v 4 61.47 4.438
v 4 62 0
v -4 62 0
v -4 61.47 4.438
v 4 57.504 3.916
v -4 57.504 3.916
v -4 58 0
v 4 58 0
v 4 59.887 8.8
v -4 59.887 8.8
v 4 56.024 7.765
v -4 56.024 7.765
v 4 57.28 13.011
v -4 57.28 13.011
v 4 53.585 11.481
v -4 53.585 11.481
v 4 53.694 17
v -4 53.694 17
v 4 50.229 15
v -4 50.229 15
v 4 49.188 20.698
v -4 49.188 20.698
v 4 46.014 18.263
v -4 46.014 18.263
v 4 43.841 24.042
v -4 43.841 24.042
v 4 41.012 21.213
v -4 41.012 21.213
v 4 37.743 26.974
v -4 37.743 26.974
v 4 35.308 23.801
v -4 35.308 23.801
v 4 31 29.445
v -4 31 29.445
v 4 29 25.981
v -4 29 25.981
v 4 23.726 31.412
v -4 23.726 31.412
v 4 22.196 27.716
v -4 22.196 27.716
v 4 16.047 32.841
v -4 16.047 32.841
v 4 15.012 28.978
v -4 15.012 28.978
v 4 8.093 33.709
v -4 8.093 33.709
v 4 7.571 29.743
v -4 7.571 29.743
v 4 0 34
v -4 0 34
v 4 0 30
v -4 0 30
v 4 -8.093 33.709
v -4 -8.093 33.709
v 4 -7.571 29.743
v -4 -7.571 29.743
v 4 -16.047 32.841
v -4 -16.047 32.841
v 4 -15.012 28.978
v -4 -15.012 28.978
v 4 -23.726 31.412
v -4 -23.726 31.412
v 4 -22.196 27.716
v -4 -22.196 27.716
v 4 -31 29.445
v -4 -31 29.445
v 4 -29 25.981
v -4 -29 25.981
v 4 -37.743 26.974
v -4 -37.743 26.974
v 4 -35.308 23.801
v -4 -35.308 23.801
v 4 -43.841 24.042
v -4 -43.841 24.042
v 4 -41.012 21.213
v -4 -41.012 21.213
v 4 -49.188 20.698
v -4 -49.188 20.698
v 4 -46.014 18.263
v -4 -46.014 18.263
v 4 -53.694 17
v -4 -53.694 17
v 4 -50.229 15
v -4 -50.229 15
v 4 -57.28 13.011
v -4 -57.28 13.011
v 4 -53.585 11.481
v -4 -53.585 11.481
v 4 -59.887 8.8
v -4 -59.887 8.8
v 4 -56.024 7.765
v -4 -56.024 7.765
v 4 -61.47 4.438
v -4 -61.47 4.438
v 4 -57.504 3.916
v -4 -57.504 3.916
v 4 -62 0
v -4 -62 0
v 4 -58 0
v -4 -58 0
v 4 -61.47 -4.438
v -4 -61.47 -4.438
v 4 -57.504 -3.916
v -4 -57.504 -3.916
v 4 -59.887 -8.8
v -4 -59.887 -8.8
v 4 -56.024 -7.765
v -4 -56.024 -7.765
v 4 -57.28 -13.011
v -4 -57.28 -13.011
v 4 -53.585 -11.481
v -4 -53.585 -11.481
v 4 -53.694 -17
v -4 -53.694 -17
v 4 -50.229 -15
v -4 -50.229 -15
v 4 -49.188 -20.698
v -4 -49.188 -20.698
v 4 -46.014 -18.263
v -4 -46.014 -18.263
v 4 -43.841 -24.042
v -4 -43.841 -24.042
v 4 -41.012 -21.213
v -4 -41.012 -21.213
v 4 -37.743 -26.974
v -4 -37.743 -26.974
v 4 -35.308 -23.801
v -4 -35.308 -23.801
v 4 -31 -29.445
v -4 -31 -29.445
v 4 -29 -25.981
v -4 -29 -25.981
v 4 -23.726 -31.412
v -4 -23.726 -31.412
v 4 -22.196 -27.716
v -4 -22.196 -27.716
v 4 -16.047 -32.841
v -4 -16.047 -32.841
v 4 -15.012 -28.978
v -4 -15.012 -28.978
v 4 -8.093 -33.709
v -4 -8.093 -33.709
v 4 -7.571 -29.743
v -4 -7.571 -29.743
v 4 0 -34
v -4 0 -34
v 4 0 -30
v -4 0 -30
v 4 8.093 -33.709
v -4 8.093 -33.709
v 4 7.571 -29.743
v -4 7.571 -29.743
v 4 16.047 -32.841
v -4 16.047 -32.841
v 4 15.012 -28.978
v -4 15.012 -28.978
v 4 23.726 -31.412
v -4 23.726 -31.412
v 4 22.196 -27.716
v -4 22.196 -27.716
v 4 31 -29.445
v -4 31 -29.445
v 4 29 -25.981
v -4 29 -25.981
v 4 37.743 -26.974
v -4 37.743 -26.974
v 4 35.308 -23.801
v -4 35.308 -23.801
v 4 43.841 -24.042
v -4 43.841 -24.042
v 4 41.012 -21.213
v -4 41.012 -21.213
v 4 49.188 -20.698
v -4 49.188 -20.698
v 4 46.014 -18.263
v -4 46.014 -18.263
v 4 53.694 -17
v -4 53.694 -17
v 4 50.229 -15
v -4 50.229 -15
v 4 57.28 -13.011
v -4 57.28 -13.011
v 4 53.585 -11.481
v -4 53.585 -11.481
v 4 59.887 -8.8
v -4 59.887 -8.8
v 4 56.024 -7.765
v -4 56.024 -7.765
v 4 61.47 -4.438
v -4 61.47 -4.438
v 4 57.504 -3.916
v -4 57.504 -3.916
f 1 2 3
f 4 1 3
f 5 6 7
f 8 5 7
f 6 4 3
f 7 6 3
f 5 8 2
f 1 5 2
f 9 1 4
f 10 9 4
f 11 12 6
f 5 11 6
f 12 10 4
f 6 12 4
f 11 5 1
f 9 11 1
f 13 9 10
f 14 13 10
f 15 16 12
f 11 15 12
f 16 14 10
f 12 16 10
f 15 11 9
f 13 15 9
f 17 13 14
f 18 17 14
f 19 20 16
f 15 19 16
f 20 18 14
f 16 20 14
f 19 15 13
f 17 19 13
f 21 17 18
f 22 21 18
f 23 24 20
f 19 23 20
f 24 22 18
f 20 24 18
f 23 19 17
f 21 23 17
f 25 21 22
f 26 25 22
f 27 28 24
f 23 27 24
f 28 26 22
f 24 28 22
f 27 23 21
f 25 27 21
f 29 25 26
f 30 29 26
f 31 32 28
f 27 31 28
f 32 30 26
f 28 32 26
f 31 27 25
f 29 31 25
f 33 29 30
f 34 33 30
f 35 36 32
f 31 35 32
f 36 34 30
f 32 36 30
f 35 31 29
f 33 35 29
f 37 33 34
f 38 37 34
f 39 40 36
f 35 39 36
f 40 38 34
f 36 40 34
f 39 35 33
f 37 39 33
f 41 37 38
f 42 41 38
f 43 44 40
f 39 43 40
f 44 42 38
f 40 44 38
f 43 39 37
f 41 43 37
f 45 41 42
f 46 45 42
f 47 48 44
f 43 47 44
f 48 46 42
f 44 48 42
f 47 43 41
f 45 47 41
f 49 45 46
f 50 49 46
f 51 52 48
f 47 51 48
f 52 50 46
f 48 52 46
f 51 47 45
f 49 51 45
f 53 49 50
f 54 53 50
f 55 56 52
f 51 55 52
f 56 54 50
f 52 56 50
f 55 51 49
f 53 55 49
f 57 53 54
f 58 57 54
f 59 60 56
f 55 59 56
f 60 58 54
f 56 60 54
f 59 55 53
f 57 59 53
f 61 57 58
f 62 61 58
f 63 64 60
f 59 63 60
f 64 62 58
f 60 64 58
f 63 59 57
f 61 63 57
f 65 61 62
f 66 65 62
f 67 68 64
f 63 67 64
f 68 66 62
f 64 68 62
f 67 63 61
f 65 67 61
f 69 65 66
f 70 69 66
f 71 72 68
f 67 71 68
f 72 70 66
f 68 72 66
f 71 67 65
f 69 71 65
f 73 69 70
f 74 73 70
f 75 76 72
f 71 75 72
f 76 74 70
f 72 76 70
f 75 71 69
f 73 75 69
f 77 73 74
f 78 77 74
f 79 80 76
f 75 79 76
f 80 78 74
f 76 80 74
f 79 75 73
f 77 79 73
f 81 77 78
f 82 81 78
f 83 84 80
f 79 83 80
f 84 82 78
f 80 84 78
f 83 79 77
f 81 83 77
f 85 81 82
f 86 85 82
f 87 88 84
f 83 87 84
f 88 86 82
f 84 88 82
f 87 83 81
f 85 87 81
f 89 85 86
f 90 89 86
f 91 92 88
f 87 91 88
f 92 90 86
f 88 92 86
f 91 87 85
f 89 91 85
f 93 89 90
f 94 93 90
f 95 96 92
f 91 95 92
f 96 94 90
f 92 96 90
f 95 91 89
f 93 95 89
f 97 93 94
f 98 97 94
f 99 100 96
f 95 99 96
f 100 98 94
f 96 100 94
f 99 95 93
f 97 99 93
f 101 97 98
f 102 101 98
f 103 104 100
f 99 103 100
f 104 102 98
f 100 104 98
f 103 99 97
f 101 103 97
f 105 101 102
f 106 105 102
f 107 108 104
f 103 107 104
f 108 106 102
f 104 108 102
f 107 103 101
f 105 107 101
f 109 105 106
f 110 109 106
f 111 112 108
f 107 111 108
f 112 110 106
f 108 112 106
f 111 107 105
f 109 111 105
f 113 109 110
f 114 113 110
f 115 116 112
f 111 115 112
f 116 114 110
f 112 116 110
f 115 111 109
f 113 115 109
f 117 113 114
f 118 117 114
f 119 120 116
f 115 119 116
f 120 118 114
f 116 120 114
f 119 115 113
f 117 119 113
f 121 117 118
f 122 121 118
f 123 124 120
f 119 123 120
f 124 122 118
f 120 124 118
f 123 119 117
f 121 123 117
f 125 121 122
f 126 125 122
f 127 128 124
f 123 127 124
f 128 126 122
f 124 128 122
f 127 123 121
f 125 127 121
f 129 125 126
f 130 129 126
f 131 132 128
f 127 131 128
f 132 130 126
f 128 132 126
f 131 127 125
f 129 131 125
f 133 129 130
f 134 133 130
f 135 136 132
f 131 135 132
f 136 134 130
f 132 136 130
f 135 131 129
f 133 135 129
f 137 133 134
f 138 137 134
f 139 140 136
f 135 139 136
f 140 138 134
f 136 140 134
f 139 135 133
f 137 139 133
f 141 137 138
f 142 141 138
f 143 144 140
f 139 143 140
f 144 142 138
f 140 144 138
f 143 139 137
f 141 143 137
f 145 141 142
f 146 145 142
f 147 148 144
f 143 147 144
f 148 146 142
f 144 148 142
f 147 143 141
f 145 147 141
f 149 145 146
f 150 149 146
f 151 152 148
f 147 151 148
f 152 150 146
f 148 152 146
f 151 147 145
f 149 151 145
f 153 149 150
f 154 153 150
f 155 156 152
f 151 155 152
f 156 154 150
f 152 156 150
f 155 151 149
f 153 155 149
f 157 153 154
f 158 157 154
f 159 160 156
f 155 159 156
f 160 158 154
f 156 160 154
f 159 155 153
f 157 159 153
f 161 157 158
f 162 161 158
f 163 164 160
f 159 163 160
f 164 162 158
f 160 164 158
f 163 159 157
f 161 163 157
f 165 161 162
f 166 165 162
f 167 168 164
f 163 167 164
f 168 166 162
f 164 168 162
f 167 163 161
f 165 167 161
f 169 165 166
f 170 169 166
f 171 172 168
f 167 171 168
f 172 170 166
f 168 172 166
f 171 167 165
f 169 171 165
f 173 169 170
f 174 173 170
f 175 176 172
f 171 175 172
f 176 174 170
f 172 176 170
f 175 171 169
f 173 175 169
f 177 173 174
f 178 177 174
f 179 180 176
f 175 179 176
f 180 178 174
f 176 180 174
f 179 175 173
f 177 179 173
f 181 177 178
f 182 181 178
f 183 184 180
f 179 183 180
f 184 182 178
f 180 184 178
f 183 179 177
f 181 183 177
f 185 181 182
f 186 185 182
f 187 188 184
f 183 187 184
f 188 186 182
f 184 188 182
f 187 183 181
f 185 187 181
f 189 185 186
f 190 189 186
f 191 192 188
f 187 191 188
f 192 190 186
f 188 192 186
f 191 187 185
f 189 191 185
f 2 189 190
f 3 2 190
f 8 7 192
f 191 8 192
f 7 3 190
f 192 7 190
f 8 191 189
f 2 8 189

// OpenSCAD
polyhedron(points=[[-4.0, 62.0, 0.0], [-4.0, 61.469581, 4.437891], [-4.0, 59.887401, 8.799848], [-4.0, 57.280531, 13.011237], [-4.0, 53.693575, 17.0], [-4.0, 49.187907, 20.697889], [-4.0, 43.84062, 24.041631], [-4.0, 37.743209, 26.974014], [-4.0, 31.0, 29.444864], [-4.0, 23.726373, 31.411904], [-4.0, 16.046781, 32.841478], [-4.0, 8.092624, 33.709125], [-4.0, 0.0, 34.0], [-4.0, -8.092624, 33.709125], [-4.0, -16.046781, 32.841478], [-4.0, -23.726373, 31.411904], [-4.0, -31.0, 29.444864], [-4.0, -37.743209, 26.974014], [-4.0, -43.84062, 24.041631], [-4.0, -49.187907, 20.697889], [-4.0, -53.693575, 17.0], [-4.0, -57.280531, 13.011237], [-4.0, -59.887401, 8.799848], [-4.0, -61.469581, 4.437891], [-4.0, -62.0, 0.0], [-4.0, -61.469581, -4.437891], [-4.0, -59.887401, -8.799848], [-4.0, -57.280531, -13.011237], [-4.0, -53.693575, -17.0], [-4.0, -49.187907, -20.697889], [-4.0, -43.84062, -24.041631], [-4.0, -37.743209, -26.974014], [-4.0, -31.0, -29.444864], [-4.0, -23.726373, -31.411904], [-4.0, -16.046781, -32.841478], [-4.0, -8.092624, -33.709125], [-4.0, -0.0, -34.0], [-4.0, 8.092624, -33.709125], [-4.0, 16.046781, -32.841478], [-4.0, 23.726373, -31.411904], [-4.0, 31.0, -29.444864], [-4.0, 37.743209, -26.974014], [-4.0, 43.84062, -24.041631], [-4.0, 49.187907, -20.697889], [-4.0, 53.693575, -17.0], [-4.0, 57.280531, -13.011237], [-4.0, 59.887401, -8.799848], [-4.0, 61.469581, -4.437891], [-4.0, 58.0, 0.0], [-4.0, 57.503802, 3.915786], [-4.0, 56.023698, 7.764571], [-4.0, 53.585013, 11.480503], [-4.0, 50.229473, 15.0], [-4.0, 46.014494, 18.262843], [-4.0, 41.012193, 21.213203], [-4.0, 35.308163, 23.8006], [-4.0, 29.0, 25.980762], [-4.0, 22.195639, 27.716386], [-4.0, 15.011505, 28.977775], [-4.0, 7.570519, 29.743346], [-4.0, 0.0, 30.0], [-4.0, -7.570519, 29.743346], [-4.0, -15.011505, 28.977775], [-4.0, -22.195639, 27.716386], [-4.0, -29.0, 25.980762], [-4.0, -35.308163, 23.8006], [-4.0, -41.012193, 21.213203], [-4.0, -46.014494, 18.262843], [-4.0, -50.229473, 15.0], [-4.0, -53.585013, 11.480503], [-4.0, -56.023698, 7.764571], [-4.0, -57.503802, 3.915786], [-4.0, -58.0, 0.0], [-4.0, -57.503802, -3.915786], [-4.0, -56.023698, -7.764571], [-4.0, -53.585013, -11.480503], [-4.0, -50.229473, -15.0], [-4.0, -46.014494, -18.262843], [-4.0, -41.012193, -21.213203], [-4.0, -35.308163, -23.8006], [-4.0, -29.0, -25.980762], [-4.0, -22.195639, -27.716386], [-4.0, -15.011505, -28.977775], [-4.0, -7.570519, -29.743346], [-4.0, -0.0, -30.0], [-4.0, 7.570519, -29.743346], [-4.0, 15.011505, -28.977775], [-4.0, 22.195639, -27.716386], [-4.0, 29.0, -25.980762], [-4.0, 35.308163, -23.8006], [-4.0, 41.012193, -21.213203], [-4.0, 46.014494, -18.262843], [-4.0, 50.229473, -15.0], [-4.0, 53.585013, -11.480503], [-4.0, 56.023698, -7.764571], [-4.0, 57.503802, -3.915786], [4.0, 62.0, 0.0], [4.0, 61.469581, 4.437891], [4.0, 59.887401, 8.799848], [4.0, 57.280531, 13.011237], [4.0, 53.693575, 17.0], [4.0, 49.187907, 20.697889], [4.0, 43.84062, 24.041631], [4.0, 37.743209, 26.974014], [4.0, 31.0, 29.444864], [4.0, 23.726373, 31.411904], [4.0, 16.046781, 32.841478], [4.0, 8.092624, 33.709125], [4.0, 0.0, 34.0], [4.0, -8.092624, 33.709125], [4.0, -16.046781, 32.841478], [4.0, -23.726373, 31.411904], [4.0, -31.0, 29.444864], [4.0, -37.743209, 26.974014], [4.0, -43.84062, 24.041631], [4.0, -49.187907, 20.697889], [4.0, -53.693575, 17.0], [4.0, -57.280531, 13.011237], [4.0, -59.887401, 8.799848], [4.0, -61.469581, 4.437891], [4.0, -62.0, 0.0], [4.0, -61.469581, -4.437891], [4.0, -59.887401, -8.799848], [4.0, -57.280531, -13.011237], [4.0, -53.693575, -17.0], [4.0, -49.187907, -20.697889], [4.0, -43.84062, -24.041631], [4.0, -37.743209, -26.974014], [4.0, -31.0, -29.444864], [4.0, -23.726373, -31.411904], [4.0, -16.046781, -32.841478], [4.0, -8.092624, -33.709125], [4.0, -0.0, -34.0], [4.0, 8.092624, -33.709125], [4.0, 16.046781, -32.841478], [4.0, 23.726373, -31.411904], [4.0, 31.0, -29.444864], [4.0, 37.743209, -26.974014], [4.0, 43.84062, -24.041631], [4.0, 49.187907, -20.697889], [4.0, 53.693575, -17.0], [4.0, 57.280531, -13.011237], [4.0, 59.887401, -8.799848], [4.0, 61.469581, -4.437891], [4.0, 58.0, 0.0], [4.0, 57.503802, 3.915786], [4.0, 56.023698, 7.764571], [4.0, 53.585013, 11.480503], [4.0, 50.229473, 15.0], [4.0, 46.014494, 18.262843], [4.0, 41.012193, 21.213203], [4.0, 35.308163, 23.8006], [4.0, 29.0, 25.980762], [4.0, 22.195639, 27.716386], [4.0, 15.011505, 28.977775], [4.0, 7.570519, 29.743346], [4.0, 0.0, 30.0], [4.0, -7.570519, 29.743346], [4.0, -15.011505, 28.977775], [4.0, -22.195639, 27.716386], [4.0, -29.0, 25.980762], [4.0, -35.308163, 23.8006], [4.0, -41.012193, 21.213203], [4.0, -46.014494, 18.262843], [4.0, -50.229473, 15.0], [4.0, -53.585013, 11.480503], [4.0, -56.023698, 7.764571], [4.0, -57.503802, 3.915786], [4.0, -58.0, 0.0], [4.0, -57.503802, -3.915786], [4.0, -56.023698, -7.764571], [4.0, -53.585013, -11.480503], [4.0, -50.229473, -15.0], [4.0, -46.014494, -18.262843], [4.0, -41.012193, -21.213203], [4.0, -35.308163, -23.8006], [4.0, -29.0, -25.980762], [4.0, -22.195639, -27.716386], [4.0, -15.011505, -28.977775], [4.0, -7.570519, -29.743346], [4.0, -0.0, -30.0], [4.0, 7.570519, -29.743346], [4.0, 15.011505, -28.977775], [4.0, 22.195639, -27.716386], [4.0, 29.0, -25.980762], [4.0, 35.308163, -23.8006], [4.0, 41.012193, -21.213203], [4.0, 46.014494, -18.262843], [4.0, 50.229473, -15.0], [4.0, 53.585013, -11.480503], [4.0, 56.023698, -7.764571], [4.0, 57.503802, -3.915786]], faces=[[0, 96, 97], [0, 97, 1], [48, 49, 145], [48, 145, 144], [0, 1, 49], [0, 49, 48], [96, 144, 145], [96, 145, 97], [1, 97, 98], [1, 98, 2], [49, 50, 146], [49, 146, 145], [1, 2, 50], [1, 50, 49], [97, 145, 146], [97, 146, 98], [2, 98, 99], [2, 99, 3], [50, 51, 147], [50, 147, 146], [2, 3, 51], [2, 51, 50], [98, 146, 147], [98, 147, 99], [3, 99, 100], [3, 100, 4], [51, 52, 148], [51, 148, 147], [3, 4, 52], [3, 52, 51], [99, 147, 148], [99, 148, 100], [4, 100, 101], [4, 101, 5], [52, 53, 149], [52, 149, 148], [4, 5, 53], [4, 53, 52], [100, 148, 149], [100, 149, 101], [5, 101, 102], [5, 102, 6], [53, 54, 150], [53, 150, 149], [5, 6, 54], [5, 54, 53], [101, 149, 150], [101, 150, 102], [6, 102, 103], [6, 103, 7], [54, 55, 151], [54, 151, 150], [6, 7, 55], [6, 55, 54], [102, 150, 151], [102, 151, 103], [7, 103, 104], [7, 104, 8], [55, 56, 152], [55, 152, 151], [7, 8, 56], [7, 56, 55], [103, 151, 152], [103, 152, 104], [8, 104, 105], [8, 105, 9], [56, 57, 153], [56, 153, 152], [8, 9, 57], [8, 57, 56], [104, 152, 153], [104, 153, 105], [9, 105, 106], [9, 106, 10], [57, 58, 154], [57, 154, 153], [9, 10, 58], [9, 58, 57], [105, 153, 154], [105, 154, 106], [10, 106, 107], [10, 107, 11], [58, 59, 155], [58, 155, 154], [10, 11, 59], [10, 59, 58], [106, 154, 155], [106, 155, 107], [11, 107, 108], [11, 108, 12], [59, 60, 156], [59, 156, 155], [11, 12, 60], [11, 60, 59], [107, 155, 156], [107, 156, 108], [12, 108, 109], [12, 109, 13], [60, 61, 157], [60, 157, 156], [12, 13, 61], [12, 61, 60], [108, 156, 157], [108, 157, 109], [13, 109, 110], [13, 110, 14], [61, 62, 158], [61, 158, 157], [13, 14, 62], [13, 62, 61], [109, 157, 158], [109, 158, 110], [14, 110, 111], [14, 111, 15], [62, 63, 159], [62, 159, 158], [14, 15, 63], [14, 63, 62], [110, 158, 159], [110, 159, 111], [15, 111, 112], [15, 112, 16], [63, 64, 160], [63, 160, 159], [15, 16, 64], [15, 64, 63], [111, 159, 160], [111, 160, 112], [16, 112, 113], [16, 113, 17], [64, 65, 161], [64, 161, 160], [16, 17, 65], [16, 65, 64], [112, 160, 161], [112, 161, 113], [17, 113, 114], [17, 114, 18], [65, 66, 162], [65, 162, 161], [17, 18, 66], [17, 66, 65], [113, 161, 162], [113, 162, 114], [18, 114, 115], [18, 115, 19], [66, 67, 163], [66, 163, 162], [18, 19, 67], [18, 67, 66], [114, 162, 163], [114, 163, 115], [19, 115, 116], [19, 116, 20], [67, 68, 164], [67, 164, 163], [19, 20, 68], [19, 68, 67], [115, 163, 164], [115, 164, 116], [20, 116, 117], [20, 117, 21], [68, 69, 165], [68, 165, 164], [20, 21, 69], [20, 69, 68], [116, 164, 165], [116, 165, 117], [21, 117, 118], [21, 118, 22], [69, 70, 166], [69, 166, 165], [21, 22, 70], [21, 70, 69], [117, 165, 166], [117, 166, 118], [22, 118, 119], [22, 119, 23], [70, 71, 167], [70, 167, 166], [22, 23, 71], [22, 71, 70], [118, 166, 167], [118, 167, 119], [23, 119, 120], [23, 120, 24], [71, 72, 168], [71, 168, 167], [23, 24, 72], [23, 72, 71], [119, 167, 168], [119, 168, 120], [24, 120, 121], [24, 121, 25], [72, 73, 169], [72, 169, 168], [24, 25, 73], [24, 73, 72], [120, 168, 169], [120, 169, 121], [25, 121, 122], [25, 122, 26], [73, 74, 170], [73, 170, 169], [25, 26, 74], [25, 74, 73], [121, 169, 170], [121, 170, 122], [26, 122, 123], [26, 123, 27], [74, 75, 171], [74, 171, 170], [26, 27, 75], [26, 75, 74], [122, 170, 171], [122, 171, 123], [27, 123, 124], [27, 124, 28], [75, 76, 172], [75, 172, 171], [27, 28, 76], [27, 76, 75], [123, 171, 172], [123, 172, 124], [28, 124, 125], [28, 125, 29], [76, 77, 173], [76, 173, 172], [28, 29, 77], [28, 77, 76], [124, 172, 173], [124, 173, 125], [29, 125, 126], [29, 126, 30], [77, 78, 174], [77, 174, 173], [29, 30, 78], [29, 78, 77], [125, 173, 174], [125, 174, 126], [30, 126, 127], [30, 127, 31], [78, 79, 175], [78, 175, 174], [30, 31, 79], [30, 79, 78], [126, 174, 175], [126, 175, 127], [31, 127, 128], [31, 128, 32], [79, 80, 176], [79, 176, 175], [31, 32, 80], [31, 80, 79], [127, 175, 176], [127, 176, 128], [32, 128, 129], [32, 129, 33], [80, 81, 177], [80, 177, 176], [32, 33, 81], [32, 81, 80], [128, 176, 177], [128, 177, 129], [33, 129, 130], [33, 130, 34], [81, 82, 178], [81, 178, 177], [33, 34, 82], [33, 82, 81], [129, 177, 178], [129, 178, 130], [34, 130, 131], [34, 131, 35], [82, 83, 179], [82, 179, 178], [34, 35, 83], [34, 83, 82], [130, 178, 179], [130, 179, 131], [35, 131, 132], [35, 132, 36], [83, 84, 180], [83, 180, 179], [35, 36, 84], [35, 84, 83], [131, 179, 180], [131, 180, 132], [36, 132, 133], [36, 133, 37], [84, 85, 181], [84, 181, 180], [36, 37, 85], [36, 85, 84], [132, 180, 181], [132, 181, 133], [37, 133, 134], [37, 134, 38], [85, 86, 182], [85, 182, 181], [37, 38, 86], [37, 86, 85], [133, 181, 182], [133, 182, 134], [38, 134, 135], [38, 135, 39], [86, 87, 183], [86, 183, 182], [38, 39, 87], [38, 87, 86], [134, 182, 183], [134, 183, 135], [39, 135, 136], [39, 136, 40], [87, 88, 184], [87, 184, 183], [39, 40, 88], [39, 88, 87], [135, 183, 184], [135, 184, 136], [40, 136, 137], [40, 137, 41], [88, 89, 185], [88, 185, 184], [40, 41, 89], [40, 89, 88], [136, 184, 185], [136, 185, 137], [41, 137, 138], [41, 138, 42], [89, 90, 186], [89, 186, 185], [41, 42, 90], [41, 90, 89], [137, 185, 186], [137, 186, 138], [42, 138, 139], [42, 139, 43], [90, 91, 187], [90, 187, 186], [42, 43, 91], [42, 91, 90], [138, 186, 187], [138, 187, 139], [43, 139, 140], [43, 140, 44], [91, 92, 188], [91, 188, 187], [43, 44, 92], [43, 92, 91], [139, 187, 188], [139, 188, 140], [44, 140, 141], [44, 141, 45], [92, 93, 189], [92, 189, 188], [44, 45, 93], [44, 93, 92], [140, 188, 189], [140, 189, 141], [45, 141, 142], [45, 142, 46], [93, 94, 190], [93, 190, 189], [45, 46, 94], [45, 94, 93], [141, 189, 190], [141, 190, 142], [46, 142, 143], [46, 143, 47], [94, 95, 191], [94, 191, 190], [46, 47, 95], [46, 95, 94], [142, 190, 191], [142, 191, 143], [47, 143, 96], [47, 96, 0], [95, 48, 144], [95, 144, 191], [47, 0, 48], [47, 48, 95], [143, 191, 144], [143, 144, 96]], convexity=20);
